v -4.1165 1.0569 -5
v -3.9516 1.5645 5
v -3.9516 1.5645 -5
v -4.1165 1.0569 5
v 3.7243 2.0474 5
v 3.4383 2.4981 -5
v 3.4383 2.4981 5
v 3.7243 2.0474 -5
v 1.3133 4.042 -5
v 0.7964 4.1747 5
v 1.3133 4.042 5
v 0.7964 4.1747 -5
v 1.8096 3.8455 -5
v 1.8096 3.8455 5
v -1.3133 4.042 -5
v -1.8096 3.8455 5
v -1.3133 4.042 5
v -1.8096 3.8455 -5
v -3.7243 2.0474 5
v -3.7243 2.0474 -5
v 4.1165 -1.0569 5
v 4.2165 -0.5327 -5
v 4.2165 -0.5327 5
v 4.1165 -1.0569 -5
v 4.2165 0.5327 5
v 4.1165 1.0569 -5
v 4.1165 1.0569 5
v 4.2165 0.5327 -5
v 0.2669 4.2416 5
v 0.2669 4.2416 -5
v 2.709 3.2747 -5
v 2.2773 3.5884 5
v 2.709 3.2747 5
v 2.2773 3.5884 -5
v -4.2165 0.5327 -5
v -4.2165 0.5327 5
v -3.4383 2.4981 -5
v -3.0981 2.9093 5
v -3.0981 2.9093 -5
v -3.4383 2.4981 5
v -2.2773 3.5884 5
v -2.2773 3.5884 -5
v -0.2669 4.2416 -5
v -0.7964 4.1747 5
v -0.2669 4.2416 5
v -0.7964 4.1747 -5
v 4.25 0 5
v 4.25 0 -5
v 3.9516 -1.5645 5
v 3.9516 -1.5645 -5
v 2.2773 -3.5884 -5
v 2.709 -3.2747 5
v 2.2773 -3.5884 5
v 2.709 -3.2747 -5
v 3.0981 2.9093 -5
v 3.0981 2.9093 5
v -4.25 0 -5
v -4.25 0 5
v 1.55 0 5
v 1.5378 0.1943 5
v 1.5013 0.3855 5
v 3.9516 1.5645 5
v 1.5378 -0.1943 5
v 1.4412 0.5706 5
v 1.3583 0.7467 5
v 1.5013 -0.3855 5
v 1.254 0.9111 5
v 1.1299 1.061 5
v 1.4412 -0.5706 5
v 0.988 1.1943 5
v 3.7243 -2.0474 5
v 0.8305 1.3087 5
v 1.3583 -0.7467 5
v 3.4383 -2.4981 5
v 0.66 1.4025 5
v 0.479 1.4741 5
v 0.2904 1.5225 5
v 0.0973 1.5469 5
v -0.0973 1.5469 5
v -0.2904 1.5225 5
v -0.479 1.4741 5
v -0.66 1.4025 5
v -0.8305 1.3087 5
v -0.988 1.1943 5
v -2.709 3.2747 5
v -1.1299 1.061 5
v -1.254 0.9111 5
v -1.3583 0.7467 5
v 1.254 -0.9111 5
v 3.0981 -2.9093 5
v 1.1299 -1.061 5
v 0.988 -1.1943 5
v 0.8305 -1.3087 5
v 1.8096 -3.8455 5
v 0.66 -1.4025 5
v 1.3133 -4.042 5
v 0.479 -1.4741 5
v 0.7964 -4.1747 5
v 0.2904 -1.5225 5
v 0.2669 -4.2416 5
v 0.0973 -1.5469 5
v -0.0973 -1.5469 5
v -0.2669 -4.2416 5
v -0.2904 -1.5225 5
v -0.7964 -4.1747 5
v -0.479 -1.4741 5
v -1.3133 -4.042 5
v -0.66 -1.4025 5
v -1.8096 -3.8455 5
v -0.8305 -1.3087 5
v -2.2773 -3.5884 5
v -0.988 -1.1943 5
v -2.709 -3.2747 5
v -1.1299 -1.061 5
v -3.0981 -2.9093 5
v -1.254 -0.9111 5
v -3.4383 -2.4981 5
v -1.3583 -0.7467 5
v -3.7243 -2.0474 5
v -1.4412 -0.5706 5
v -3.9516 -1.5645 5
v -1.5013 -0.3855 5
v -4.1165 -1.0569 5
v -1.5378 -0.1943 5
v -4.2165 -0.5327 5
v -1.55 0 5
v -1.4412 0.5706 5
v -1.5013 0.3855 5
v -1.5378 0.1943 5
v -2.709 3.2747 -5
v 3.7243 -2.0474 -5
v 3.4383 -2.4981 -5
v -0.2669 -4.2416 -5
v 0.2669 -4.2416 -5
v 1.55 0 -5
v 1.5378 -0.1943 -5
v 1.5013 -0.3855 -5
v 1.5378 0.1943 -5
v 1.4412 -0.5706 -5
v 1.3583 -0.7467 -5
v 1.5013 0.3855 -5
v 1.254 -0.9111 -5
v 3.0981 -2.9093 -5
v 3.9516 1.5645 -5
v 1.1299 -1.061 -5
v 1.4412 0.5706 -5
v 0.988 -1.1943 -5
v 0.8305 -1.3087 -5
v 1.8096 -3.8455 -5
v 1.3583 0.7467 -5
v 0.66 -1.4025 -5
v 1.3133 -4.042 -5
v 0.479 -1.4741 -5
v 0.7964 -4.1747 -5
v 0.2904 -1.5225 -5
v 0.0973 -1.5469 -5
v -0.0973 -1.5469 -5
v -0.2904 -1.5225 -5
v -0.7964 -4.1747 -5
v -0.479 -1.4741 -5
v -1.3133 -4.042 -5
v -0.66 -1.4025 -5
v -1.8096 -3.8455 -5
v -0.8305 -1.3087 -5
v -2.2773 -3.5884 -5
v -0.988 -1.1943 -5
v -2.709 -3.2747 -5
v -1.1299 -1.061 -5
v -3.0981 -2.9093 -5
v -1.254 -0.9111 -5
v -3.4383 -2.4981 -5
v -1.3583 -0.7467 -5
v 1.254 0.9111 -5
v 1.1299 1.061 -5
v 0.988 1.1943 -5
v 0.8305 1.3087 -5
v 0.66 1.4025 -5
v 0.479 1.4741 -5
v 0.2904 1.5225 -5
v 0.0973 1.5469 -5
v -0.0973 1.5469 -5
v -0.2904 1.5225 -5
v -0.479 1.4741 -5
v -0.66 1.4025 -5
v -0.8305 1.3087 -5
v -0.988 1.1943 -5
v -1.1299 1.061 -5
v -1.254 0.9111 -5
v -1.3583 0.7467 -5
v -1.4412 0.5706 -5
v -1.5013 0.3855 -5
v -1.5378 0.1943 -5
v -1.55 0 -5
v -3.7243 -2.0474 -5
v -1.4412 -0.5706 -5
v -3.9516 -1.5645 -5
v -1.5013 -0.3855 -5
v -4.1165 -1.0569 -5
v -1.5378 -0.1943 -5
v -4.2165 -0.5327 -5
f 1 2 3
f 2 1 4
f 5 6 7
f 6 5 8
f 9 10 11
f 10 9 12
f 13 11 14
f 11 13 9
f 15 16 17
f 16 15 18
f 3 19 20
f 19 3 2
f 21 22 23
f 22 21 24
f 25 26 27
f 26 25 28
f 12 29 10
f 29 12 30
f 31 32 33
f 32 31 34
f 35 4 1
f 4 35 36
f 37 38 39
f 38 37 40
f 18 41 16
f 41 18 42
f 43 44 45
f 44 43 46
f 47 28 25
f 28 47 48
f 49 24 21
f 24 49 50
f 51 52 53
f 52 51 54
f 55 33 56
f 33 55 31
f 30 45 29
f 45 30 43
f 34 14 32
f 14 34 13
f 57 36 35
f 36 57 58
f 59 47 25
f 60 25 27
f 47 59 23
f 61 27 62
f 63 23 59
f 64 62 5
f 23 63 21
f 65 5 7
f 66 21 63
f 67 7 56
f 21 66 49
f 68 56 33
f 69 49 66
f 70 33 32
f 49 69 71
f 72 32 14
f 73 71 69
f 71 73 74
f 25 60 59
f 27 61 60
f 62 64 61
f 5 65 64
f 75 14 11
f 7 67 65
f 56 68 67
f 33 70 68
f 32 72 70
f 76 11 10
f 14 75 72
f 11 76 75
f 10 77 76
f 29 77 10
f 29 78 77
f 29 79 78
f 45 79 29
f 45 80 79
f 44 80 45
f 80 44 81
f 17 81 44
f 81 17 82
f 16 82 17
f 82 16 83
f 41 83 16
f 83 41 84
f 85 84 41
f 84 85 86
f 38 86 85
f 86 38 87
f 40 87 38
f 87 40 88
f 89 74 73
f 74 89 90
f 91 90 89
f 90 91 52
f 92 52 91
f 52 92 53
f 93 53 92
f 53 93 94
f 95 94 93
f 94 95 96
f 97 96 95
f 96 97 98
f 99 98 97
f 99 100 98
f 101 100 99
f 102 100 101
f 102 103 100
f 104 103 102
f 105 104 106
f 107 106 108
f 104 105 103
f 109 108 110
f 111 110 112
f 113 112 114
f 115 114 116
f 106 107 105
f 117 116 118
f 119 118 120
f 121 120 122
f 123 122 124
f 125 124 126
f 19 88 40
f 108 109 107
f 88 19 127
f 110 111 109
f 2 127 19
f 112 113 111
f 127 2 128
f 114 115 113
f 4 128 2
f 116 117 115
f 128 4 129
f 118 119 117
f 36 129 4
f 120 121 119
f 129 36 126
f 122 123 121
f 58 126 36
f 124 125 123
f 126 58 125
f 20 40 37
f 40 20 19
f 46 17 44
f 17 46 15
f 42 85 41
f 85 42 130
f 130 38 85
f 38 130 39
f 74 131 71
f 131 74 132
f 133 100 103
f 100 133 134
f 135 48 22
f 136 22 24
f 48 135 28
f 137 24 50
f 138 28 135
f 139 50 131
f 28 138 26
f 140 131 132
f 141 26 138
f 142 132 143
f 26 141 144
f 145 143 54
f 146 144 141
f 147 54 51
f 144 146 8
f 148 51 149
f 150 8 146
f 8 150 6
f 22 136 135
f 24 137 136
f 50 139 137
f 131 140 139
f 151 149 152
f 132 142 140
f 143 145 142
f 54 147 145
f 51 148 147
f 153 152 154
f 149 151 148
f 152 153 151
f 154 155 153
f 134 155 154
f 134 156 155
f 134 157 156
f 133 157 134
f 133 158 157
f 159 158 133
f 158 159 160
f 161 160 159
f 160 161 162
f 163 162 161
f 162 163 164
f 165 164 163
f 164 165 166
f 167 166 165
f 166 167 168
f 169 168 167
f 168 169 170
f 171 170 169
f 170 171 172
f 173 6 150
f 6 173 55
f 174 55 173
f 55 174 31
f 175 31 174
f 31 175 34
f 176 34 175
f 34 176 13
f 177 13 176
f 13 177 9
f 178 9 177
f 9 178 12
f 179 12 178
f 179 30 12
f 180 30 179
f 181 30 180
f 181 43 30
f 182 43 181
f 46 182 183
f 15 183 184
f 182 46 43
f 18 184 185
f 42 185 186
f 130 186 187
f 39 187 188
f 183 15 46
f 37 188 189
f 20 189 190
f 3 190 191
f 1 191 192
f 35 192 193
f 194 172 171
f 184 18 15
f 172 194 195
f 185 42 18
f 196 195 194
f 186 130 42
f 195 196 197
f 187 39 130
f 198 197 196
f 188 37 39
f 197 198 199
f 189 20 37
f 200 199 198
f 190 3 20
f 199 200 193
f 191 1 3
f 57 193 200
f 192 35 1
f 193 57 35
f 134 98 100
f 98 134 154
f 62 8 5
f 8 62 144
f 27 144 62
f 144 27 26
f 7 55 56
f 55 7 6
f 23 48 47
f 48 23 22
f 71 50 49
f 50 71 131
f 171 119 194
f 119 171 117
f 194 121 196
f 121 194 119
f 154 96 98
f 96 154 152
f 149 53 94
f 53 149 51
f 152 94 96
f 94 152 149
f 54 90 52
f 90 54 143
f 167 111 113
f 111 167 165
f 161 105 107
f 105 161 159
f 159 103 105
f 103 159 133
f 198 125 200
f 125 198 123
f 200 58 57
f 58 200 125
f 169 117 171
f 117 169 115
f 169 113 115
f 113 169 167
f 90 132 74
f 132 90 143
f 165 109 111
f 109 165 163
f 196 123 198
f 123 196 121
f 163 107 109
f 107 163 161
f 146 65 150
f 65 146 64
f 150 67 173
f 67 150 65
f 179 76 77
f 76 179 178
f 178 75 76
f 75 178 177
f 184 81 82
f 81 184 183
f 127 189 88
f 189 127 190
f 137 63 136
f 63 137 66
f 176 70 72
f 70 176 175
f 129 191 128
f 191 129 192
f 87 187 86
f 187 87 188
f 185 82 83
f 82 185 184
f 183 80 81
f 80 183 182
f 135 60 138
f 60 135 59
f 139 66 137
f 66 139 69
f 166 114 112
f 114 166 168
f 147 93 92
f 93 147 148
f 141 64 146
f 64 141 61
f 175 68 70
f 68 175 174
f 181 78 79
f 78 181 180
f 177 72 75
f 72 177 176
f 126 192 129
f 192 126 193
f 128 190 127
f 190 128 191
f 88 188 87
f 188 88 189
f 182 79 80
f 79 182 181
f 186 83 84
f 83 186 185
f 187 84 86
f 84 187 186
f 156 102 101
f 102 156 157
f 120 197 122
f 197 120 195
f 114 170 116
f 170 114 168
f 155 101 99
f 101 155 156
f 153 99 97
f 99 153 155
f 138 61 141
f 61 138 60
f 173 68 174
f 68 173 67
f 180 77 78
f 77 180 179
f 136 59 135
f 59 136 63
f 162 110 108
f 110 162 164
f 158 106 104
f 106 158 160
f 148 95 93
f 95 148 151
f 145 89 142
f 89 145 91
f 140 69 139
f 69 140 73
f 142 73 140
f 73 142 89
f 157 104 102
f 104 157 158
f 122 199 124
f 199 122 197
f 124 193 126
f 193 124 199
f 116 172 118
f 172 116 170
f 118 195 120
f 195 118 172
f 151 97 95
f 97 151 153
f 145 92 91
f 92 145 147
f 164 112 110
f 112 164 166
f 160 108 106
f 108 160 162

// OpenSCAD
$fn = 50;


difference() {
	union() {
		translate(v = [0, 0, -5.0000000000]) {
			cylinder(h = 10, r = 4.2500000000);
		}
	}
	union() {
		translate(v = [0, 0, -100.0000000000]) {
			cylinder(h = 200, r = 1.5500000000);
		}
	}
}
